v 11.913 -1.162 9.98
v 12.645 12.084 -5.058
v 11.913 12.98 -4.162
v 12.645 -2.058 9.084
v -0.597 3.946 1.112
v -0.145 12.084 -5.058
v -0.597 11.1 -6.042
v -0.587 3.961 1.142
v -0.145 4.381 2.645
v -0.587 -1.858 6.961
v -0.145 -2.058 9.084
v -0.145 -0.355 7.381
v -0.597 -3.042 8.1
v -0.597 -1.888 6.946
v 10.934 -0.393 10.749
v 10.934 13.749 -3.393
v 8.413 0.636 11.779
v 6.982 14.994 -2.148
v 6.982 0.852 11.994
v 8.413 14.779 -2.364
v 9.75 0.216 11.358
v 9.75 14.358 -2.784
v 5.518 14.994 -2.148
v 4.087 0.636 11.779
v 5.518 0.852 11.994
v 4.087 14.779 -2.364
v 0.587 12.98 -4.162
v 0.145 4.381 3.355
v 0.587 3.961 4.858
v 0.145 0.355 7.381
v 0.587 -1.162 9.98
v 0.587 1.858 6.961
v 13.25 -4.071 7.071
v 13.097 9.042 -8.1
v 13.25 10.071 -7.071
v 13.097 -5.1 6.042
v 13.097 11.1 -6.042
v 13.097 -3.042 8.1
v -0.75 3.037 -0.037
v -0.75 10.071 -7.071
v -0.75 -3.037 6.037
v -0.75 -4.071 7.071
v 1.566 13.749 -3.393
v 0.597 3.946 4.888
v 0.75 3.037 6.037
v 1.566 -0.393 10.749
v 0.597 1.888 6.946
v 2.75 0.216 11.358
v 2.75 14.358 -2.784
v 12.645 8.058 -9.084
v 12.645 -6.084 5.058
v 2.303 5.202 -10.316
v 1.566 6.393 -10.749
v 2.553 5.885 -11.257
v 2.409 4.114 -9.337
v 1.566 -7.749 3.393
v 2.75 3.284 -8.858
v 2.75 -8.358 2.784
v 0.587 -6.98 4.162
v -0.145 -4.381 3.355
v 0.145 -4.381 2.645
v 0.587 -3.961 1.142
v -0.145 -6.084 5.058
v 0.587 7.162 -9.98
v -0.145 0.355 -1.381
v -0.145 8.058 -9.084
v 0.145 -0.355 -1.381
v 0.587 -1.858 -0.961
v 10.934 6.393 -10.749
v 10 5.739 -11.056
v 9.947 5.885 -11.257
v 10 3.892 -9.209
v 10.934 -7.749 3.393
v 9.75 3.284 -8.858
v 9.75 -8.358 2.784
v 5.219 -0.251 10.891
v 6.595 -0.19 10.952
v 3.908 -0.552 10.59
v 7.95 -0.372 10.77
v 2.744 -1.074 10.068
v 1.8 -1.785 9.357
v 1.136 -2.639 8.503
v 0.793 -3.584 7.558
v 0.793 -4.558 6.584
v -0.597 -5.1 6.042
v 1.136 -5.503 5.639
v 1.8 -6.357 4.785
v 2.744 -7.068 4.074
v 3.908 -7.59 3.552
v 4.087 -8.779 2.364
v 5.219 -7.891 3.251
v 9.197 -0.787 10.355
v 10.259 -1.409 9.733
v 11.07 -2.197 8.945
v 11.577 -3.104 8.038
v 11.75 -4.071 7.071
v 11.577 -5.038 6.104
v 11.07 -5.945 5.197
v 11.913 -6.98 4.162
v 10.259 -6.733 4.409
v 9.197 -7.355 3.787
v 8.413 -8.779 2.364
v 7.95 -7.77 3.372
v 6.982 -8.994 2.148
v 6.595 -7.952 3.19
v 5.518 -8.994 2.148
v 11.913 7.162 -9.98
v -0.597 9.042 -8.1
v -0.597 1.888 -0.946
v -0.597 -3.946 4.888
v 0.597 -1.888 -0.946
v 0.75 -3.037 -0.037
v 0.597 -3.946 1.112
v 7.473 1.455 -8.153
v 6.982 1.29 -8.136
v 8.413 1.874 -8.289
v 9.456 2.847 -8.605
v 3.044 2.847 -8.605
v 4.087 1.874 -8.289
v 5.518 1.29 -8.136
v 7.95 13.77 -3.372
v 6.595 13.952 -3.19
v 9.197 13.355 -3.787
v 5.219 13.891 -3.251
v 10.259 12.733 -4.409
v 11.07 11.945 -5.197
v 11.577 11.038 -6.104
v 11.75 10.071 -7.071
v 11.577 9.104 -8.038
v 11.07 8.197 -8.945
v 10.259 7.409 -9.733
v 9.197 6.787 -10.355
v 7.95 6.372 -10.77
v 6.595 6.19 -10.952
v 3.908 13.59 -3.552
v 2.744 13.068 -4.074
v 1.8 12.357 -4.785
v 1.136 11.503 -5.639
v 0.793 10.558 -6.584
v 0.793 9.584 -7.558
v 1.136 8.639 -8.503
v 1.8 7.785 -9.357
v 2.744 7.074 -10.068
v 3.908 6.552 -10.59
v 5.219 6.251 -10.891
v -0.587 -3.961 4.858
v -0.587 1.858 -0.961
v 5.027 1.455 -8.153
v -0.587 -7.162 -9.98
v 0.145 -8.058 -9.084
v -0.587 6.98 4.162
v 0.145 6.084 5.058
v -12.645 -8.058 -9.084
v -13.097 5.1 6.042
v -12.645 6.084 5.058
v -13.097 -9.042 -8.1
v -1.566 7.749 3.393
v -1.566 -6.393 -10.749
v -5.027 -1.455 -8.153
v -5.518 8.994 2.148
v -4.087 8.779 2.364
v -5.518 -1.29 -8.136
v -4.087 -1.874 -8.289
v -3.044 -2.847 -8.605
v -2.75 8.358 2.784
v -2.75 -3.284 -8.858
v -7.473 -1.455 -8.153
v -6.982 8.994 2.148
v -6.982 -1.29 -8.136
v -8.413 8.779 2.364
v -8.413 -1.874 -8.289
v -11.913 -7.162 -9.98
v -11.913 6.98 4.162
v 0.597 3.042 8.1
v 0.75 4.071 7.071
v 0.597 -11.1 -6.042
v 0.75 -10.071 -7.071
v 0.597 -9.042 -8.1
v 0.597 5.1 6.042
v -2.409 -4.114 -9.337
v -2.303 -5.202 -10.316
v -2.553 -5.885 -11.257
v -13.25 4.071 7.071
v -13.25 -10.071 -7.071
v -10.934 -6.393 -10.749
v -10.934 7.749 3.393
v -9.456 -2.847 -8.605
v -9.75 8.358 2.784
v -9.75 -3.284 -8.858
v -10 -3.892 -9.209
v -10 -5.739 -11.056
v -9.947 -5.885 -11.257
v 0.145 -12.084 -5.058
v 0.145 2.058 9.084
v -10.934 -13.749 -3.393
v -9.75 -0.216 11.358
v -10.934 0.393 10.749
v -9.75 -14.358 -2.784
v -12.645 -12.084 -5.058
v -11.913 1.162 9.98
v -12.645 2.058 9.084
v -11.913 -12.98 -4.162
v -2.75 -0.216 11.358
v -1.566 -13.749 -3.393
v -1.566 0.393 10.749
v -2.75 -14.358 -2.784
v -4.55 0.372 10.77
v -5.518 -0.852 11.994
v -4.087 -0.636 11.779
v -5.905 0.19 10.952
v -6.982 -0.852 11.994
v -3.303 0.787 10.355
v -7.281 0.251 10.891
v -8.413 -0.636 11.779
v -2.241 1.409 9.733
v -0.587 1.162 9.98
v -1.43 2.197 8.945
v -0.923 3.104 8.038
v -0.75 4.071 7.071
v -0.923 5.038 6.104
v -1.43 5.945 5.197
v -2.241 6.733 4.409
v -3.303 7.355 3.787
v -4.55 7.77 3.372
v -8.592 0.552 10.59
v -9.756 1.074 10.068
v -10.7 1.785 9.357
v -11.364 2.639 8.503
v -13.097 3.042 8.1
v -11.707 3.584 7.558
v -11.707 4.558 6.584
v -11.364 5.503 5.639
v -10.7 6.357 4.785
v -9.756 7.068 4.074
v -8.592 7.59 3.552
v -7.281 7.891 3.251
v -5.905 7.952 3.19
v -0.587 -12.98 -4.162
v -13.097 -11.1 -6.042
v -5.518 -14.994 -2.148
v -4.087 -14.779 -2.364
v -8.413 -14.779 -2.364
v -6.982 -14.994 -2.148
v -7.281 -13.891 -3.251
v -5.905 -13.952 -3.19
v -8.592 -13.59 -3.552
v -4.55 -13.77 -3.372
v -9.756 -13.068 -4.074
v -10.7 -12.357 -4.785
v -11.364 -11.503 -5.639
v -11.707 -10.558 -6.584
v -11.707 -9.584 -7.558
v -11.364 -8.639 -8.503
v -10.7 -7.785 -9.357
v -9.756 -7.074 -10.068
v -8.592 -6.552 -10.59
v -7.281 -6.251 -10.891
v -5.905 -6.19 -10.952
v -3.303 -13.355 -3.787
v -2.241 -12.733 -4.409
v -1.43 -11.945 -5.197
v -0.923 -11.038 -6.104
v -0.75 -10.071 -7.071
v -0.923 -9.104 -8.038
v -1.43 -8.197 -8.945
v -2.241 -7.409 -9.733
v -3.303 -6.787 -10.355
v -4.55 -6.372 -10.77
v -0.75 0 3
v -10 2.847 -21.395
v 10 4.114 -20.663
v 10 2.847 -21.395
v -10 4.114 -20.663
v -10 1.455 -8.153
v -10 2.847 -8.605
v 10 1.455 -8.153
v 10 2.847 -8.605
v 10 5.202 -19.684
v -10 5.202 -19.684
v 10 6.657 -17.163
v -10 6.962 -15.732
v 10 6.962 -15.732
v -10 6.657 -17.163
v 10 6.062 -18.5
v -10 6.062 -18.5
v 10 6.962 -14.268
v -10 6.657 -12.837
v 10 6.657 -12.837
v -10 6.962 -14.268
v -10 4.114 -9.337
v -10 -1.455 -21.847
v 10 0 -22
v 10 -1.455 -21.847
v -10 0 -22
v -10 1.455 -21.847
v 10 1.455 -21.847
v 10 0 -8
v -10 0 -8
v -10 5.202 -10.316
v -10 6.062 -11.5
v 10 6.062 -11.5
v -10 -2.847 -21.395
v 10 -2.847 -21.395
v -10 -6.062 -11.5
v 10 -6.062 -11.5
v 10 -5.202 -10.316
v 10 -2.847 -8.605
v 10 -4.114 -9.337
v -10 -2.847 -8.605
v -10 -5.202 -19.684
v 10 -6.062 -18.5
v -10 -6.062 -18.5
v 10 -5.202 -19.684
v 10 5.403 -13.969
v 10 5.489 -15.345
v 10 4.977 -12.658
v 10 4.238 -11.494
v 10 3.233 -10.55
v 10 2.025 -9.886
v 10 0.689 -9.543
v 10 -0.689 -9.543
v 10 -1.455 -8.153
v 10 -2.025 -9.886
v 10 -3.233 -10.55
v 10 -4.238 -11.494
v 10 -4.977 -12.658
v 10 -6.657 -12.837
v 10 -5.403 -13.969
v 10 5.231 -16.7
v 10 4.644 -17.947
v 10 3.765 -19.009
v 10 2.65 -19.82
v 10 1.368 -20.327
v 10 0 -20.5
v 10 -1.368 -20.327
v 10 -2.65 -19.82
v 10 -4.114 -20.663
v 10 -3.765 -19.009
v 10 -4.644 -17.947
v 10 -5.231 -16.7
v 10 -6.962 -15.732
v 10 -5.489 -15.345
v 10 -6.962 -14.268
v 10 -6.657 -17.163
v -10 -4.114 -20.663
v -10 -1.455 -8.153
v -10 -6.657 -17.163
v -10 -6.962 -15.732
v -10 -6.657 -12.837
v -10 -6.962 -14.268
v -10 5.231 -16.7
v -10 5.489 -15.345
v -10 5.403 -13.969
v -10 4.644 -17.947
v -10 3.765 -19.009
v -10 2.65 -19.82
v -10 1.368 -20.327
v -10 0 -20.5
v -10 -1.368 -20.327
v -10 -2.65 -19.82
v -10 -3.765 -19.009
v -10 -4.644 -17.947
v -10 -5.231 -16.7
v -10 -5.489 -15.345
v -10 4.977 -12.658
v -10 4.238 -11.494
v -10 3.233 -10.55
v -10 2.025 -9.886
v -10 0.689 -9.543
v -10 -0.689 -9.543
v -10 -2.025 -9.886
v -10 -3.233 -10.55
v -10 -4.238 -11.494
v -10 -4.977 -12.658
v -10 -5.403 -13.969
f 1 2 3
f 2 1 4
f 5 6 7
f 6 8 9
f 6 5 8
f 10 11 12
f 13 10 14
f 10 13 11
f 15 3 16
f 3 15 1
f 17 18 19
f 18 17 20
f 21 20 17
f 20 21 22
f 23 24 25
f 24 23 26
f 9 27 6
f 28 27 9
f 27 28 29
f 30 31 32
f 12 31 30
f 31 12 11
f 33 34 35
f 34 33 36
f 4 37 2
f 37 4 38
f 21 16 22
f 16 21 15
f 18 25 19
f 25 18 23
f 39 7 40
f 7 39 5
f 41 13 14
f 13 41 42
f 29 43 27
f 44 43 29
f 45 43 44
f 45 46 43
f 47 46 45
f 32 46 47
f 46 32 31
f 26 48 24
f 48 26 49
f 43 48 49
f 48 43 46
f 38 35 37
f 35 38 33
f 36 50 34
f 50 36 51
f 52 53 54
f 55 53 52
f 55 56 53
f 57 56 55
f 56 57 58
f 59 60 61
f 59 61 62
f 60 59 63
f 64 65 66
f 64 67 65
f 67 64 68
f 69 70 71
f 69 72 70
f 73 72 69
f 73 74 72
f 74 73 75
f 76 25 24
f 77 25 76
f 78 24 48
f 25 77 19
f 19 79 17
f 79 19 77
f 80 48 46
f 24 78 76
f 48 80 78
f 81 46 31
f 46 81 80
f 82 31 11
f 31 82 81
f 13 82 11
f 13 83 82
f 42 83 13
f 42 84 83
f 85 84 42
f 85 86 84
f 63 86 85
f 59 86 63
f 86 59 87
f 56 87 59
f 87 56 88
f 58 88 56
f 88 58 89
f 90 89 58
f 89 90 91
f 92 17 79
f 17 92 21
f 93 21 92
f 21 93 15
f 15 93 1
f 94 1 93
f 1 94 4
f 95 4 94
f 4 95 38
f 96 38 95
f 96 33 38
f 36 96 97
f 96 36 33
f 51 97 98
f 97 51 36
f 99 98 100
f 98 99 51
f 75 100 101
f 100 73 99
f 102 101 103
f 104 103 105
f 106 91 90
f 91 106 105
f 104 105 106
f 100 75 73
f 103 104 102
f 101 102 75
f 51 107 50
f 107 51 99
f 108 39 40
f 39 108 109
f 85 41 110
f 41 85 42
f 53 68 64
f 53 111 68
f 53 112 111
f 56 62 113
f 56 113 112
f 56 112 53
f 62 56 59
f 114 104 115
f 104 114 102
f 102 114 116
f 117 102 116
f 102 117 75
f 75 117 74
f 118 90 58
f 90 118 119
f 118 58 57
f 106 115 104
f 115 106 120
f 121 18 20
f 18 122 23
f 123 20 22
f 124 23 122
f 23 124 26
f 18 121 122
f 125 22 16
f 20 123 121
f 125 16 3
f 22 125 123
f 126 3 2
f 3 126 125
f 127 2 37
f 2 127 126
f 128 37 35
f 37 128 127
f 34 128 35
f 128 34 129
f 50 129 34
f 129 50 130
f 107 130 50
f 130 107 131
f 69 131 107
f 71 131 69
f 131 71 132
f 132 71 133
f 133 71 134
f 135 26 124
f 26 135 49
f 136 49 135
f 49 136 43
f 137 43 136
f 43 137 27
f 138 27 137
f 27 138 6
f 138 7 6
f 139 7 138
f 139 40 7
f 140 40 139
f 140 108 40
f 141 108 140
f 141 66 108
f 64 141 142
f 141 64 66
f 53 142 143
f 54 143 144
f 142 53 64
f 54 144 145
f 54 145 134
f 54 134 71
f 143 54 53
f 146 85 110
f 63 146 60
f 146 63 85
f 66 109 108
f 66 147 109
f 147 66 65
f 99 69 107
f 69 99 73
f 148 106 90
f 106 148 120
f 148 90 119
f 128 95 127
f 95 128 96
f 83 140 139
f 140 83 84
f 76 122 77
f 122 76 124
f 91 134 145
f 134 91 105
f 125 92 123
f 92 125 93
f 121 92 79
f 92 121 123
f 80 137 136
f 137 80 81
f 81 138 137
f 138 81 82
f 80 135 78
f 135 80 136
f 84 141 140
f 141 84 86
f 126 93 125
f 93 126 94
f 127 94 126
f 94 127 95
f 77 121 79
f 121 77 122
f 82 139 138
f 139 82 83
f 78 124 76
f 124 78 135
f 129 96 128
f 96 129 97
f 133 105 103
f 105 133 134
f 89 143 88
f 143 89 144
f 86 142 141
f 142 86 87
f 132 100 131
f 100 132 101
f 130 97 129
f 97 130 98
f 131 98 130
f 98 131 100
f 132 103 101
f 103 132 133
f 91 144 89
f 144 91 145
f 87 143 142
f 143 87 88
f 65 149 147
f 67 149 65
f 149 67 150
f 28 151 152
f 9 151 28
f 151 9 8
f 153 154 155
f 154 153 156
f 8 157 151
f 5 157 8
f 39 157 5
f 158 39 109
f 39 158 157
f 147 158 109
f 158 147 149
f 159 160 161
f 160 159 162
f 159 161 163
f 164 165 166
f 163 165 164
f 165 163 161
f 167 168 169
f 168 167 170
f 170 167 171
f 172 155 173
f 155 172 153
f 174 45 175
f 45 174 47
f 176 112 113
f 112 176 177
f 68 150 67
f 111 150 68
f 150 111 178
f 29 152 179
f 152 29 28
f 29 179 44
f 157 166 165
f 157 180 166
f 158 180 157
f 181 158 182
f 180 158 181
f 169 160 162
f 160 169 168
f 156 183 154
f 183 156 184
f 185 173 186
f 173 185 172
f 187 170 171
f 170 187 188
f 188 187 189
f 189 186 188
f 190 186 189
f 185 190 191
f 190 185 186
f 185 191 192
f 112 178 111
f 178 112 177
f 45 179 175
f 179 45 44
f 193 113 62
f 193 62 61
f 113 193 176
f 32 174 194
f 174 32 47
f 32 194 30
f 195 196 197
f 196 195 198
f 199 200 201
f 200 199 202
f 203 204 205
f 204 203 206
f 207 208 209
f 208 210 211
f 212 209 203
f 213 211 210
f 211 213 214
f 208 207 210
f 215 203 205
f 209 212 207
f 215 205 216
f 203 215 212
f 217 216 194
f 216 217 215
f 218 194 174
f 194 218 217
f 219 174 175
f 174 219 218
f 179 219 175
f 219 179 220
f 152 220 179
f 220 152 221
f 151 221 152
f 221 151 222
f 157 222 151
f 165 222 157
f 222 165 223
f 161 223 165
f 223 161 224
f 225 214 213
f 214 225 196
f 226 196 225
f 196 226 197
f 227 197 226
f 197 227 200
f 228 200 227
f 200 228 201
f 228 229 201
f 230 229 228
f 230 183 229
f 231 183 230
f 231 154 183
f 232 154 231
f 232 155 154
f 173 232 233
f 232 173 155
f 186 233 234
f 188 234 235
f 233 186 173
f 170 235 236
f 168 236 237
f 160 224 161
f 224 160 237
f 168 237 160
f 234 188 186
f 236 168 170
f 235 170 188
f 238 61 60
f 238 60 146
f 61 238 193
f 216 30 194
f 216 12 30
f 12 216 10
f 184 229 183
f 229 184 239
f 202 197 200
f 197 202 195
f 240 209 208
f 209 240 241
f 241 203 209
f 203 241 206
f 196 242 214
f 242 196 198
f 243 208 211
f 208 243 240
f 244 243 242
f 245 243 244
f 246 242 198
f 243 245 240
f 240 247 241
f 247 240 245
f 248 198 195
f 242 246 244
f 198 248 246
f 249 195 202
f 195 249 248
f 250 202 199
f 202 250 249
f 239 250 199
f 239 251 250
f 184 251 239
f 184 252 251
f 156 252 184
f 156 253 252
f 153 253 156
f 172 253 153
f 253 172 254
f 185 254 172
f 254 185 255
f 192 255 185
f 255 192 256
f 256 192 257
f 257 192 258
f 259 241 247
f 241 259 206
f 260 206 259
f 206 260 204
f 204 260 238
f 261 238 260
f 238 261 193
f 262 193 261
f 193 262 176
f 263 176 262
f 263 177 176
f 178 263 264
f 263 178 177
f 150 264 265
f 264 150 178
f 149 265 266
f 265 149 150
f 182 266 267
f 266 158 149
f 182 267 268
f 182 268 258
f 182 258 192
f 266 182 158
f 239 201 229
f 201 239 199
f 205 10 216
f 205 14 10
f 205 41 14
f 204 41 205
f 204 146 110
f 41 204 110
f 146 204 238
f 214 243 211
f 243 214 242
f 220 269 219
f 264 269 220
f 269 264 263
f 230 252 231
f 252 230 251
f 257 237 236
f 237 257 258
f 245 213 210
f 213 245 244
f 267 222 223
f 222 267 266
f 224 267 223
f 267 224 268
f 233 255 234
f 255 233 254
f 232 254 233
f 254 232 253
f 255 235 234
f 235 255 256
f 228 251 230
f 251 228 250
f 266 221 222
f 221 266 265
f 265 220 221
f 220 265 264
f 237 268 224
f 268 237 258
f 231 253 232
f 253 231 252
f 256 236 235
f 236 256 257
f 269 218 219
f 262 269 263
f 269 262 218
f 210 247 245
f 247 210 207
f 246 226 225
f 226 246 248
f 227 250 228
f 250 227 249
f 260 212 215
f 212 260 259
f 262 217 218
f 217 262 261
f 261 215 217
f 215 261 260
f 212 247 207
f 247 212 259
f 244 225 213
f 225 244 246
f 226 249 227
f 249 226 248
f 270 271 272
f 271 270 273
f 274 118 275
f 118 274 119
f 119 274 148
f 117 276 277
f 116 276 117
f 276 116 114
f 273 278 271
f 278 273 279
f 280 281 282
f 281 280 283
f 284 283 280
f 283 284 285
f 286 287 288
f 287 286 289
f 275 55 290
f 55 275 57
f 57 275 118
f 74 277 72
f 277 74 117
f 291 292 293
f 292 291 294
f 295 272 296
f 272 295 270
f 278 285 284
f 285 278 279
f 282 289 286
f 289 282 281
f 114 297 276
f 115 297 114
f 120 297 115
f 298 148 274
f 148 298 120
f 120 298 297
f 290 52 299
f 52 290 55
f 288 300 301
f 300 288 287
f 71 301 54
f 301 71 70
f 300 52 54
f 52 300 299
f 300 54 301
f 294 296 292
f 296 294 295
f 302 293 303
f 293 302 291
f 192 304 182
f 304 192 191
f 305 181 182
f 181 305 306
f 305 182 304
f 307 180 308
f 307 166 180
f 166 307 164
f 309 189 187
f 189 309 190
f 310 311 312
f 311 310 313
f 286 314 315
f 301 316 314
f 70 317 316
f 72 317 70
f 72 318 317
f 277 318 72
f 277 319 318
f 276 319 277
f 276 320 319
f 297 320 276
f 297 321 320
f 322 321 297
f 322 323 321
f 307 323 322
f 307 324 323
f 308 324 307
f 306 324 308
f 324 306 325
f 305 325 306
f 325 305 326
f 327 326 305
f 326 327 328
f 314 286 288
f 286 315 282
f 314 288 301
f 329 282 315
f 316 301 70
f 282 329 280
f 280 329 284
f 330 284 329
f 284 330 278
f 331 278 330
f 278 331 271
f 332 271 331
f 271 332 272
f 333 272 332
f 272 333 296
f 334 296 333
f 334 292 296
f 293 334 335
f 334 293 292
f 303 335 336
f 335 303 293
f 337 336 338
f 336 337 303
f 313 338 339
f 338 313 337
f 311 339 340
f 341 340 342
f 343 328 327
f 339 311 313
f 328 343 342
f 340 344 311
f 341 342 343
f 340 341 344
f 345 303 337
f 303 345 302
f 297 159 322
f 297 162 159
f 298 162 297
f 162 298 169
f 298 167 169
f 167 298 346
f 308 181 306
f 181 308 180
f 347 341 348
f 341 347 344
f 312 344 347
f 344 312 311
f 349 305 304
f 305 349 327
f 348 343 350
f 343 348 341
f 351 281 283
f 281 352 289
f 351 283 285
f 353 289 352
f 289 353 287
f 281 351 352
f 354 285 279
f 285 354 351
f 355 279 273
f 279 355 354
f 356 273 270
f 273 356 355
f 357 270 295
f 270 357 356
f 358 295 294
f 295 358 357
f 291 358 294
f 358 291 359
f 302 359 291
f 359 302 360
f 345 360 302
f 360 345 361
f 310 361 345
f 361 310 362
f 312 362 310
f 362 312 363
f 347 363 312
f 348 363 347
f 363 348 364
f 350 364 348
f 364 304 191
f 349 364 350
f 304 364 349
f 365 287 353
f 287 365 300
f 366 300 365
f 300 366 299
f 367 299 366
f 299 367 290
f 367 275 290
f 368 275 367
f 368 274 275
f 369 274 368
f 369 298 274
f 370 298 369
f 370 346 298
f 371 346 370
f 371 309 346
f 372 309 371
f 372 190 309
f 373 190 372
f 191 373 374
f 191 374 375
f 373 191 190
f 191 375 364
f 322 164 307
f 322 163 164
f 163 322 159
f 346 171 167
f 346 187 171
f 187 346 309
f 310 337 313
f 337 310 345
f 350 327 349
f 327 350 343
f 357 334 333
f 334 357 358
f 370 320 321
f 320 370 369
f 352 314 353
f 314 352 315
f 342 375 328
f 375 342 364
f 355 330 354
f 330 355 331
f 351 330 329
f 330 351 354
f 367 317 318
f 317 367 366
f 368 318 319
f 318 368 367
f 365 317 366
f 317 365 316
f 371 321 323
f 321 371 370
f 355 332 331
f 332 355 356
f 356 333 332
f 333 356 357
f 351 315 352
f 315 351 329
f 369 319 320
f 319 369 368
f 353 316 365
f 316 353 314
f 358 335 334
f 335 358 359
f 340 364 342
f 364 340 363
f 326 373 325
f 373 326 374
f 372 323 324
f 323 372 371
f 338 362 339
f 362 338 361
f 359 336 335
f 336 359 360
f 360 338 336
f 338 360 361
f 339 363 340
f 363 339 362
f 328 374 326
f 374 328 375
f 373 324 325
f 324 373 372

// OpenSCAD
module ring(height = 20) {
    difference() {
        cylinder(h=height, r=7, $fn=30, center = true);
        cylinder(h=height, r=5.5, $fn=25, center = true);
    }
}

translate([6.25, 3, 0]) {
    rotate([45, 0, 0]) { ring(); }
}

translate([-6.25, -3, 0]) {
    rotate([-45, 0, 0]) { ring(); }
}

 translate([0, 0, -15]) {
    rotate([0, 90, 0]) { ring(); }
}
